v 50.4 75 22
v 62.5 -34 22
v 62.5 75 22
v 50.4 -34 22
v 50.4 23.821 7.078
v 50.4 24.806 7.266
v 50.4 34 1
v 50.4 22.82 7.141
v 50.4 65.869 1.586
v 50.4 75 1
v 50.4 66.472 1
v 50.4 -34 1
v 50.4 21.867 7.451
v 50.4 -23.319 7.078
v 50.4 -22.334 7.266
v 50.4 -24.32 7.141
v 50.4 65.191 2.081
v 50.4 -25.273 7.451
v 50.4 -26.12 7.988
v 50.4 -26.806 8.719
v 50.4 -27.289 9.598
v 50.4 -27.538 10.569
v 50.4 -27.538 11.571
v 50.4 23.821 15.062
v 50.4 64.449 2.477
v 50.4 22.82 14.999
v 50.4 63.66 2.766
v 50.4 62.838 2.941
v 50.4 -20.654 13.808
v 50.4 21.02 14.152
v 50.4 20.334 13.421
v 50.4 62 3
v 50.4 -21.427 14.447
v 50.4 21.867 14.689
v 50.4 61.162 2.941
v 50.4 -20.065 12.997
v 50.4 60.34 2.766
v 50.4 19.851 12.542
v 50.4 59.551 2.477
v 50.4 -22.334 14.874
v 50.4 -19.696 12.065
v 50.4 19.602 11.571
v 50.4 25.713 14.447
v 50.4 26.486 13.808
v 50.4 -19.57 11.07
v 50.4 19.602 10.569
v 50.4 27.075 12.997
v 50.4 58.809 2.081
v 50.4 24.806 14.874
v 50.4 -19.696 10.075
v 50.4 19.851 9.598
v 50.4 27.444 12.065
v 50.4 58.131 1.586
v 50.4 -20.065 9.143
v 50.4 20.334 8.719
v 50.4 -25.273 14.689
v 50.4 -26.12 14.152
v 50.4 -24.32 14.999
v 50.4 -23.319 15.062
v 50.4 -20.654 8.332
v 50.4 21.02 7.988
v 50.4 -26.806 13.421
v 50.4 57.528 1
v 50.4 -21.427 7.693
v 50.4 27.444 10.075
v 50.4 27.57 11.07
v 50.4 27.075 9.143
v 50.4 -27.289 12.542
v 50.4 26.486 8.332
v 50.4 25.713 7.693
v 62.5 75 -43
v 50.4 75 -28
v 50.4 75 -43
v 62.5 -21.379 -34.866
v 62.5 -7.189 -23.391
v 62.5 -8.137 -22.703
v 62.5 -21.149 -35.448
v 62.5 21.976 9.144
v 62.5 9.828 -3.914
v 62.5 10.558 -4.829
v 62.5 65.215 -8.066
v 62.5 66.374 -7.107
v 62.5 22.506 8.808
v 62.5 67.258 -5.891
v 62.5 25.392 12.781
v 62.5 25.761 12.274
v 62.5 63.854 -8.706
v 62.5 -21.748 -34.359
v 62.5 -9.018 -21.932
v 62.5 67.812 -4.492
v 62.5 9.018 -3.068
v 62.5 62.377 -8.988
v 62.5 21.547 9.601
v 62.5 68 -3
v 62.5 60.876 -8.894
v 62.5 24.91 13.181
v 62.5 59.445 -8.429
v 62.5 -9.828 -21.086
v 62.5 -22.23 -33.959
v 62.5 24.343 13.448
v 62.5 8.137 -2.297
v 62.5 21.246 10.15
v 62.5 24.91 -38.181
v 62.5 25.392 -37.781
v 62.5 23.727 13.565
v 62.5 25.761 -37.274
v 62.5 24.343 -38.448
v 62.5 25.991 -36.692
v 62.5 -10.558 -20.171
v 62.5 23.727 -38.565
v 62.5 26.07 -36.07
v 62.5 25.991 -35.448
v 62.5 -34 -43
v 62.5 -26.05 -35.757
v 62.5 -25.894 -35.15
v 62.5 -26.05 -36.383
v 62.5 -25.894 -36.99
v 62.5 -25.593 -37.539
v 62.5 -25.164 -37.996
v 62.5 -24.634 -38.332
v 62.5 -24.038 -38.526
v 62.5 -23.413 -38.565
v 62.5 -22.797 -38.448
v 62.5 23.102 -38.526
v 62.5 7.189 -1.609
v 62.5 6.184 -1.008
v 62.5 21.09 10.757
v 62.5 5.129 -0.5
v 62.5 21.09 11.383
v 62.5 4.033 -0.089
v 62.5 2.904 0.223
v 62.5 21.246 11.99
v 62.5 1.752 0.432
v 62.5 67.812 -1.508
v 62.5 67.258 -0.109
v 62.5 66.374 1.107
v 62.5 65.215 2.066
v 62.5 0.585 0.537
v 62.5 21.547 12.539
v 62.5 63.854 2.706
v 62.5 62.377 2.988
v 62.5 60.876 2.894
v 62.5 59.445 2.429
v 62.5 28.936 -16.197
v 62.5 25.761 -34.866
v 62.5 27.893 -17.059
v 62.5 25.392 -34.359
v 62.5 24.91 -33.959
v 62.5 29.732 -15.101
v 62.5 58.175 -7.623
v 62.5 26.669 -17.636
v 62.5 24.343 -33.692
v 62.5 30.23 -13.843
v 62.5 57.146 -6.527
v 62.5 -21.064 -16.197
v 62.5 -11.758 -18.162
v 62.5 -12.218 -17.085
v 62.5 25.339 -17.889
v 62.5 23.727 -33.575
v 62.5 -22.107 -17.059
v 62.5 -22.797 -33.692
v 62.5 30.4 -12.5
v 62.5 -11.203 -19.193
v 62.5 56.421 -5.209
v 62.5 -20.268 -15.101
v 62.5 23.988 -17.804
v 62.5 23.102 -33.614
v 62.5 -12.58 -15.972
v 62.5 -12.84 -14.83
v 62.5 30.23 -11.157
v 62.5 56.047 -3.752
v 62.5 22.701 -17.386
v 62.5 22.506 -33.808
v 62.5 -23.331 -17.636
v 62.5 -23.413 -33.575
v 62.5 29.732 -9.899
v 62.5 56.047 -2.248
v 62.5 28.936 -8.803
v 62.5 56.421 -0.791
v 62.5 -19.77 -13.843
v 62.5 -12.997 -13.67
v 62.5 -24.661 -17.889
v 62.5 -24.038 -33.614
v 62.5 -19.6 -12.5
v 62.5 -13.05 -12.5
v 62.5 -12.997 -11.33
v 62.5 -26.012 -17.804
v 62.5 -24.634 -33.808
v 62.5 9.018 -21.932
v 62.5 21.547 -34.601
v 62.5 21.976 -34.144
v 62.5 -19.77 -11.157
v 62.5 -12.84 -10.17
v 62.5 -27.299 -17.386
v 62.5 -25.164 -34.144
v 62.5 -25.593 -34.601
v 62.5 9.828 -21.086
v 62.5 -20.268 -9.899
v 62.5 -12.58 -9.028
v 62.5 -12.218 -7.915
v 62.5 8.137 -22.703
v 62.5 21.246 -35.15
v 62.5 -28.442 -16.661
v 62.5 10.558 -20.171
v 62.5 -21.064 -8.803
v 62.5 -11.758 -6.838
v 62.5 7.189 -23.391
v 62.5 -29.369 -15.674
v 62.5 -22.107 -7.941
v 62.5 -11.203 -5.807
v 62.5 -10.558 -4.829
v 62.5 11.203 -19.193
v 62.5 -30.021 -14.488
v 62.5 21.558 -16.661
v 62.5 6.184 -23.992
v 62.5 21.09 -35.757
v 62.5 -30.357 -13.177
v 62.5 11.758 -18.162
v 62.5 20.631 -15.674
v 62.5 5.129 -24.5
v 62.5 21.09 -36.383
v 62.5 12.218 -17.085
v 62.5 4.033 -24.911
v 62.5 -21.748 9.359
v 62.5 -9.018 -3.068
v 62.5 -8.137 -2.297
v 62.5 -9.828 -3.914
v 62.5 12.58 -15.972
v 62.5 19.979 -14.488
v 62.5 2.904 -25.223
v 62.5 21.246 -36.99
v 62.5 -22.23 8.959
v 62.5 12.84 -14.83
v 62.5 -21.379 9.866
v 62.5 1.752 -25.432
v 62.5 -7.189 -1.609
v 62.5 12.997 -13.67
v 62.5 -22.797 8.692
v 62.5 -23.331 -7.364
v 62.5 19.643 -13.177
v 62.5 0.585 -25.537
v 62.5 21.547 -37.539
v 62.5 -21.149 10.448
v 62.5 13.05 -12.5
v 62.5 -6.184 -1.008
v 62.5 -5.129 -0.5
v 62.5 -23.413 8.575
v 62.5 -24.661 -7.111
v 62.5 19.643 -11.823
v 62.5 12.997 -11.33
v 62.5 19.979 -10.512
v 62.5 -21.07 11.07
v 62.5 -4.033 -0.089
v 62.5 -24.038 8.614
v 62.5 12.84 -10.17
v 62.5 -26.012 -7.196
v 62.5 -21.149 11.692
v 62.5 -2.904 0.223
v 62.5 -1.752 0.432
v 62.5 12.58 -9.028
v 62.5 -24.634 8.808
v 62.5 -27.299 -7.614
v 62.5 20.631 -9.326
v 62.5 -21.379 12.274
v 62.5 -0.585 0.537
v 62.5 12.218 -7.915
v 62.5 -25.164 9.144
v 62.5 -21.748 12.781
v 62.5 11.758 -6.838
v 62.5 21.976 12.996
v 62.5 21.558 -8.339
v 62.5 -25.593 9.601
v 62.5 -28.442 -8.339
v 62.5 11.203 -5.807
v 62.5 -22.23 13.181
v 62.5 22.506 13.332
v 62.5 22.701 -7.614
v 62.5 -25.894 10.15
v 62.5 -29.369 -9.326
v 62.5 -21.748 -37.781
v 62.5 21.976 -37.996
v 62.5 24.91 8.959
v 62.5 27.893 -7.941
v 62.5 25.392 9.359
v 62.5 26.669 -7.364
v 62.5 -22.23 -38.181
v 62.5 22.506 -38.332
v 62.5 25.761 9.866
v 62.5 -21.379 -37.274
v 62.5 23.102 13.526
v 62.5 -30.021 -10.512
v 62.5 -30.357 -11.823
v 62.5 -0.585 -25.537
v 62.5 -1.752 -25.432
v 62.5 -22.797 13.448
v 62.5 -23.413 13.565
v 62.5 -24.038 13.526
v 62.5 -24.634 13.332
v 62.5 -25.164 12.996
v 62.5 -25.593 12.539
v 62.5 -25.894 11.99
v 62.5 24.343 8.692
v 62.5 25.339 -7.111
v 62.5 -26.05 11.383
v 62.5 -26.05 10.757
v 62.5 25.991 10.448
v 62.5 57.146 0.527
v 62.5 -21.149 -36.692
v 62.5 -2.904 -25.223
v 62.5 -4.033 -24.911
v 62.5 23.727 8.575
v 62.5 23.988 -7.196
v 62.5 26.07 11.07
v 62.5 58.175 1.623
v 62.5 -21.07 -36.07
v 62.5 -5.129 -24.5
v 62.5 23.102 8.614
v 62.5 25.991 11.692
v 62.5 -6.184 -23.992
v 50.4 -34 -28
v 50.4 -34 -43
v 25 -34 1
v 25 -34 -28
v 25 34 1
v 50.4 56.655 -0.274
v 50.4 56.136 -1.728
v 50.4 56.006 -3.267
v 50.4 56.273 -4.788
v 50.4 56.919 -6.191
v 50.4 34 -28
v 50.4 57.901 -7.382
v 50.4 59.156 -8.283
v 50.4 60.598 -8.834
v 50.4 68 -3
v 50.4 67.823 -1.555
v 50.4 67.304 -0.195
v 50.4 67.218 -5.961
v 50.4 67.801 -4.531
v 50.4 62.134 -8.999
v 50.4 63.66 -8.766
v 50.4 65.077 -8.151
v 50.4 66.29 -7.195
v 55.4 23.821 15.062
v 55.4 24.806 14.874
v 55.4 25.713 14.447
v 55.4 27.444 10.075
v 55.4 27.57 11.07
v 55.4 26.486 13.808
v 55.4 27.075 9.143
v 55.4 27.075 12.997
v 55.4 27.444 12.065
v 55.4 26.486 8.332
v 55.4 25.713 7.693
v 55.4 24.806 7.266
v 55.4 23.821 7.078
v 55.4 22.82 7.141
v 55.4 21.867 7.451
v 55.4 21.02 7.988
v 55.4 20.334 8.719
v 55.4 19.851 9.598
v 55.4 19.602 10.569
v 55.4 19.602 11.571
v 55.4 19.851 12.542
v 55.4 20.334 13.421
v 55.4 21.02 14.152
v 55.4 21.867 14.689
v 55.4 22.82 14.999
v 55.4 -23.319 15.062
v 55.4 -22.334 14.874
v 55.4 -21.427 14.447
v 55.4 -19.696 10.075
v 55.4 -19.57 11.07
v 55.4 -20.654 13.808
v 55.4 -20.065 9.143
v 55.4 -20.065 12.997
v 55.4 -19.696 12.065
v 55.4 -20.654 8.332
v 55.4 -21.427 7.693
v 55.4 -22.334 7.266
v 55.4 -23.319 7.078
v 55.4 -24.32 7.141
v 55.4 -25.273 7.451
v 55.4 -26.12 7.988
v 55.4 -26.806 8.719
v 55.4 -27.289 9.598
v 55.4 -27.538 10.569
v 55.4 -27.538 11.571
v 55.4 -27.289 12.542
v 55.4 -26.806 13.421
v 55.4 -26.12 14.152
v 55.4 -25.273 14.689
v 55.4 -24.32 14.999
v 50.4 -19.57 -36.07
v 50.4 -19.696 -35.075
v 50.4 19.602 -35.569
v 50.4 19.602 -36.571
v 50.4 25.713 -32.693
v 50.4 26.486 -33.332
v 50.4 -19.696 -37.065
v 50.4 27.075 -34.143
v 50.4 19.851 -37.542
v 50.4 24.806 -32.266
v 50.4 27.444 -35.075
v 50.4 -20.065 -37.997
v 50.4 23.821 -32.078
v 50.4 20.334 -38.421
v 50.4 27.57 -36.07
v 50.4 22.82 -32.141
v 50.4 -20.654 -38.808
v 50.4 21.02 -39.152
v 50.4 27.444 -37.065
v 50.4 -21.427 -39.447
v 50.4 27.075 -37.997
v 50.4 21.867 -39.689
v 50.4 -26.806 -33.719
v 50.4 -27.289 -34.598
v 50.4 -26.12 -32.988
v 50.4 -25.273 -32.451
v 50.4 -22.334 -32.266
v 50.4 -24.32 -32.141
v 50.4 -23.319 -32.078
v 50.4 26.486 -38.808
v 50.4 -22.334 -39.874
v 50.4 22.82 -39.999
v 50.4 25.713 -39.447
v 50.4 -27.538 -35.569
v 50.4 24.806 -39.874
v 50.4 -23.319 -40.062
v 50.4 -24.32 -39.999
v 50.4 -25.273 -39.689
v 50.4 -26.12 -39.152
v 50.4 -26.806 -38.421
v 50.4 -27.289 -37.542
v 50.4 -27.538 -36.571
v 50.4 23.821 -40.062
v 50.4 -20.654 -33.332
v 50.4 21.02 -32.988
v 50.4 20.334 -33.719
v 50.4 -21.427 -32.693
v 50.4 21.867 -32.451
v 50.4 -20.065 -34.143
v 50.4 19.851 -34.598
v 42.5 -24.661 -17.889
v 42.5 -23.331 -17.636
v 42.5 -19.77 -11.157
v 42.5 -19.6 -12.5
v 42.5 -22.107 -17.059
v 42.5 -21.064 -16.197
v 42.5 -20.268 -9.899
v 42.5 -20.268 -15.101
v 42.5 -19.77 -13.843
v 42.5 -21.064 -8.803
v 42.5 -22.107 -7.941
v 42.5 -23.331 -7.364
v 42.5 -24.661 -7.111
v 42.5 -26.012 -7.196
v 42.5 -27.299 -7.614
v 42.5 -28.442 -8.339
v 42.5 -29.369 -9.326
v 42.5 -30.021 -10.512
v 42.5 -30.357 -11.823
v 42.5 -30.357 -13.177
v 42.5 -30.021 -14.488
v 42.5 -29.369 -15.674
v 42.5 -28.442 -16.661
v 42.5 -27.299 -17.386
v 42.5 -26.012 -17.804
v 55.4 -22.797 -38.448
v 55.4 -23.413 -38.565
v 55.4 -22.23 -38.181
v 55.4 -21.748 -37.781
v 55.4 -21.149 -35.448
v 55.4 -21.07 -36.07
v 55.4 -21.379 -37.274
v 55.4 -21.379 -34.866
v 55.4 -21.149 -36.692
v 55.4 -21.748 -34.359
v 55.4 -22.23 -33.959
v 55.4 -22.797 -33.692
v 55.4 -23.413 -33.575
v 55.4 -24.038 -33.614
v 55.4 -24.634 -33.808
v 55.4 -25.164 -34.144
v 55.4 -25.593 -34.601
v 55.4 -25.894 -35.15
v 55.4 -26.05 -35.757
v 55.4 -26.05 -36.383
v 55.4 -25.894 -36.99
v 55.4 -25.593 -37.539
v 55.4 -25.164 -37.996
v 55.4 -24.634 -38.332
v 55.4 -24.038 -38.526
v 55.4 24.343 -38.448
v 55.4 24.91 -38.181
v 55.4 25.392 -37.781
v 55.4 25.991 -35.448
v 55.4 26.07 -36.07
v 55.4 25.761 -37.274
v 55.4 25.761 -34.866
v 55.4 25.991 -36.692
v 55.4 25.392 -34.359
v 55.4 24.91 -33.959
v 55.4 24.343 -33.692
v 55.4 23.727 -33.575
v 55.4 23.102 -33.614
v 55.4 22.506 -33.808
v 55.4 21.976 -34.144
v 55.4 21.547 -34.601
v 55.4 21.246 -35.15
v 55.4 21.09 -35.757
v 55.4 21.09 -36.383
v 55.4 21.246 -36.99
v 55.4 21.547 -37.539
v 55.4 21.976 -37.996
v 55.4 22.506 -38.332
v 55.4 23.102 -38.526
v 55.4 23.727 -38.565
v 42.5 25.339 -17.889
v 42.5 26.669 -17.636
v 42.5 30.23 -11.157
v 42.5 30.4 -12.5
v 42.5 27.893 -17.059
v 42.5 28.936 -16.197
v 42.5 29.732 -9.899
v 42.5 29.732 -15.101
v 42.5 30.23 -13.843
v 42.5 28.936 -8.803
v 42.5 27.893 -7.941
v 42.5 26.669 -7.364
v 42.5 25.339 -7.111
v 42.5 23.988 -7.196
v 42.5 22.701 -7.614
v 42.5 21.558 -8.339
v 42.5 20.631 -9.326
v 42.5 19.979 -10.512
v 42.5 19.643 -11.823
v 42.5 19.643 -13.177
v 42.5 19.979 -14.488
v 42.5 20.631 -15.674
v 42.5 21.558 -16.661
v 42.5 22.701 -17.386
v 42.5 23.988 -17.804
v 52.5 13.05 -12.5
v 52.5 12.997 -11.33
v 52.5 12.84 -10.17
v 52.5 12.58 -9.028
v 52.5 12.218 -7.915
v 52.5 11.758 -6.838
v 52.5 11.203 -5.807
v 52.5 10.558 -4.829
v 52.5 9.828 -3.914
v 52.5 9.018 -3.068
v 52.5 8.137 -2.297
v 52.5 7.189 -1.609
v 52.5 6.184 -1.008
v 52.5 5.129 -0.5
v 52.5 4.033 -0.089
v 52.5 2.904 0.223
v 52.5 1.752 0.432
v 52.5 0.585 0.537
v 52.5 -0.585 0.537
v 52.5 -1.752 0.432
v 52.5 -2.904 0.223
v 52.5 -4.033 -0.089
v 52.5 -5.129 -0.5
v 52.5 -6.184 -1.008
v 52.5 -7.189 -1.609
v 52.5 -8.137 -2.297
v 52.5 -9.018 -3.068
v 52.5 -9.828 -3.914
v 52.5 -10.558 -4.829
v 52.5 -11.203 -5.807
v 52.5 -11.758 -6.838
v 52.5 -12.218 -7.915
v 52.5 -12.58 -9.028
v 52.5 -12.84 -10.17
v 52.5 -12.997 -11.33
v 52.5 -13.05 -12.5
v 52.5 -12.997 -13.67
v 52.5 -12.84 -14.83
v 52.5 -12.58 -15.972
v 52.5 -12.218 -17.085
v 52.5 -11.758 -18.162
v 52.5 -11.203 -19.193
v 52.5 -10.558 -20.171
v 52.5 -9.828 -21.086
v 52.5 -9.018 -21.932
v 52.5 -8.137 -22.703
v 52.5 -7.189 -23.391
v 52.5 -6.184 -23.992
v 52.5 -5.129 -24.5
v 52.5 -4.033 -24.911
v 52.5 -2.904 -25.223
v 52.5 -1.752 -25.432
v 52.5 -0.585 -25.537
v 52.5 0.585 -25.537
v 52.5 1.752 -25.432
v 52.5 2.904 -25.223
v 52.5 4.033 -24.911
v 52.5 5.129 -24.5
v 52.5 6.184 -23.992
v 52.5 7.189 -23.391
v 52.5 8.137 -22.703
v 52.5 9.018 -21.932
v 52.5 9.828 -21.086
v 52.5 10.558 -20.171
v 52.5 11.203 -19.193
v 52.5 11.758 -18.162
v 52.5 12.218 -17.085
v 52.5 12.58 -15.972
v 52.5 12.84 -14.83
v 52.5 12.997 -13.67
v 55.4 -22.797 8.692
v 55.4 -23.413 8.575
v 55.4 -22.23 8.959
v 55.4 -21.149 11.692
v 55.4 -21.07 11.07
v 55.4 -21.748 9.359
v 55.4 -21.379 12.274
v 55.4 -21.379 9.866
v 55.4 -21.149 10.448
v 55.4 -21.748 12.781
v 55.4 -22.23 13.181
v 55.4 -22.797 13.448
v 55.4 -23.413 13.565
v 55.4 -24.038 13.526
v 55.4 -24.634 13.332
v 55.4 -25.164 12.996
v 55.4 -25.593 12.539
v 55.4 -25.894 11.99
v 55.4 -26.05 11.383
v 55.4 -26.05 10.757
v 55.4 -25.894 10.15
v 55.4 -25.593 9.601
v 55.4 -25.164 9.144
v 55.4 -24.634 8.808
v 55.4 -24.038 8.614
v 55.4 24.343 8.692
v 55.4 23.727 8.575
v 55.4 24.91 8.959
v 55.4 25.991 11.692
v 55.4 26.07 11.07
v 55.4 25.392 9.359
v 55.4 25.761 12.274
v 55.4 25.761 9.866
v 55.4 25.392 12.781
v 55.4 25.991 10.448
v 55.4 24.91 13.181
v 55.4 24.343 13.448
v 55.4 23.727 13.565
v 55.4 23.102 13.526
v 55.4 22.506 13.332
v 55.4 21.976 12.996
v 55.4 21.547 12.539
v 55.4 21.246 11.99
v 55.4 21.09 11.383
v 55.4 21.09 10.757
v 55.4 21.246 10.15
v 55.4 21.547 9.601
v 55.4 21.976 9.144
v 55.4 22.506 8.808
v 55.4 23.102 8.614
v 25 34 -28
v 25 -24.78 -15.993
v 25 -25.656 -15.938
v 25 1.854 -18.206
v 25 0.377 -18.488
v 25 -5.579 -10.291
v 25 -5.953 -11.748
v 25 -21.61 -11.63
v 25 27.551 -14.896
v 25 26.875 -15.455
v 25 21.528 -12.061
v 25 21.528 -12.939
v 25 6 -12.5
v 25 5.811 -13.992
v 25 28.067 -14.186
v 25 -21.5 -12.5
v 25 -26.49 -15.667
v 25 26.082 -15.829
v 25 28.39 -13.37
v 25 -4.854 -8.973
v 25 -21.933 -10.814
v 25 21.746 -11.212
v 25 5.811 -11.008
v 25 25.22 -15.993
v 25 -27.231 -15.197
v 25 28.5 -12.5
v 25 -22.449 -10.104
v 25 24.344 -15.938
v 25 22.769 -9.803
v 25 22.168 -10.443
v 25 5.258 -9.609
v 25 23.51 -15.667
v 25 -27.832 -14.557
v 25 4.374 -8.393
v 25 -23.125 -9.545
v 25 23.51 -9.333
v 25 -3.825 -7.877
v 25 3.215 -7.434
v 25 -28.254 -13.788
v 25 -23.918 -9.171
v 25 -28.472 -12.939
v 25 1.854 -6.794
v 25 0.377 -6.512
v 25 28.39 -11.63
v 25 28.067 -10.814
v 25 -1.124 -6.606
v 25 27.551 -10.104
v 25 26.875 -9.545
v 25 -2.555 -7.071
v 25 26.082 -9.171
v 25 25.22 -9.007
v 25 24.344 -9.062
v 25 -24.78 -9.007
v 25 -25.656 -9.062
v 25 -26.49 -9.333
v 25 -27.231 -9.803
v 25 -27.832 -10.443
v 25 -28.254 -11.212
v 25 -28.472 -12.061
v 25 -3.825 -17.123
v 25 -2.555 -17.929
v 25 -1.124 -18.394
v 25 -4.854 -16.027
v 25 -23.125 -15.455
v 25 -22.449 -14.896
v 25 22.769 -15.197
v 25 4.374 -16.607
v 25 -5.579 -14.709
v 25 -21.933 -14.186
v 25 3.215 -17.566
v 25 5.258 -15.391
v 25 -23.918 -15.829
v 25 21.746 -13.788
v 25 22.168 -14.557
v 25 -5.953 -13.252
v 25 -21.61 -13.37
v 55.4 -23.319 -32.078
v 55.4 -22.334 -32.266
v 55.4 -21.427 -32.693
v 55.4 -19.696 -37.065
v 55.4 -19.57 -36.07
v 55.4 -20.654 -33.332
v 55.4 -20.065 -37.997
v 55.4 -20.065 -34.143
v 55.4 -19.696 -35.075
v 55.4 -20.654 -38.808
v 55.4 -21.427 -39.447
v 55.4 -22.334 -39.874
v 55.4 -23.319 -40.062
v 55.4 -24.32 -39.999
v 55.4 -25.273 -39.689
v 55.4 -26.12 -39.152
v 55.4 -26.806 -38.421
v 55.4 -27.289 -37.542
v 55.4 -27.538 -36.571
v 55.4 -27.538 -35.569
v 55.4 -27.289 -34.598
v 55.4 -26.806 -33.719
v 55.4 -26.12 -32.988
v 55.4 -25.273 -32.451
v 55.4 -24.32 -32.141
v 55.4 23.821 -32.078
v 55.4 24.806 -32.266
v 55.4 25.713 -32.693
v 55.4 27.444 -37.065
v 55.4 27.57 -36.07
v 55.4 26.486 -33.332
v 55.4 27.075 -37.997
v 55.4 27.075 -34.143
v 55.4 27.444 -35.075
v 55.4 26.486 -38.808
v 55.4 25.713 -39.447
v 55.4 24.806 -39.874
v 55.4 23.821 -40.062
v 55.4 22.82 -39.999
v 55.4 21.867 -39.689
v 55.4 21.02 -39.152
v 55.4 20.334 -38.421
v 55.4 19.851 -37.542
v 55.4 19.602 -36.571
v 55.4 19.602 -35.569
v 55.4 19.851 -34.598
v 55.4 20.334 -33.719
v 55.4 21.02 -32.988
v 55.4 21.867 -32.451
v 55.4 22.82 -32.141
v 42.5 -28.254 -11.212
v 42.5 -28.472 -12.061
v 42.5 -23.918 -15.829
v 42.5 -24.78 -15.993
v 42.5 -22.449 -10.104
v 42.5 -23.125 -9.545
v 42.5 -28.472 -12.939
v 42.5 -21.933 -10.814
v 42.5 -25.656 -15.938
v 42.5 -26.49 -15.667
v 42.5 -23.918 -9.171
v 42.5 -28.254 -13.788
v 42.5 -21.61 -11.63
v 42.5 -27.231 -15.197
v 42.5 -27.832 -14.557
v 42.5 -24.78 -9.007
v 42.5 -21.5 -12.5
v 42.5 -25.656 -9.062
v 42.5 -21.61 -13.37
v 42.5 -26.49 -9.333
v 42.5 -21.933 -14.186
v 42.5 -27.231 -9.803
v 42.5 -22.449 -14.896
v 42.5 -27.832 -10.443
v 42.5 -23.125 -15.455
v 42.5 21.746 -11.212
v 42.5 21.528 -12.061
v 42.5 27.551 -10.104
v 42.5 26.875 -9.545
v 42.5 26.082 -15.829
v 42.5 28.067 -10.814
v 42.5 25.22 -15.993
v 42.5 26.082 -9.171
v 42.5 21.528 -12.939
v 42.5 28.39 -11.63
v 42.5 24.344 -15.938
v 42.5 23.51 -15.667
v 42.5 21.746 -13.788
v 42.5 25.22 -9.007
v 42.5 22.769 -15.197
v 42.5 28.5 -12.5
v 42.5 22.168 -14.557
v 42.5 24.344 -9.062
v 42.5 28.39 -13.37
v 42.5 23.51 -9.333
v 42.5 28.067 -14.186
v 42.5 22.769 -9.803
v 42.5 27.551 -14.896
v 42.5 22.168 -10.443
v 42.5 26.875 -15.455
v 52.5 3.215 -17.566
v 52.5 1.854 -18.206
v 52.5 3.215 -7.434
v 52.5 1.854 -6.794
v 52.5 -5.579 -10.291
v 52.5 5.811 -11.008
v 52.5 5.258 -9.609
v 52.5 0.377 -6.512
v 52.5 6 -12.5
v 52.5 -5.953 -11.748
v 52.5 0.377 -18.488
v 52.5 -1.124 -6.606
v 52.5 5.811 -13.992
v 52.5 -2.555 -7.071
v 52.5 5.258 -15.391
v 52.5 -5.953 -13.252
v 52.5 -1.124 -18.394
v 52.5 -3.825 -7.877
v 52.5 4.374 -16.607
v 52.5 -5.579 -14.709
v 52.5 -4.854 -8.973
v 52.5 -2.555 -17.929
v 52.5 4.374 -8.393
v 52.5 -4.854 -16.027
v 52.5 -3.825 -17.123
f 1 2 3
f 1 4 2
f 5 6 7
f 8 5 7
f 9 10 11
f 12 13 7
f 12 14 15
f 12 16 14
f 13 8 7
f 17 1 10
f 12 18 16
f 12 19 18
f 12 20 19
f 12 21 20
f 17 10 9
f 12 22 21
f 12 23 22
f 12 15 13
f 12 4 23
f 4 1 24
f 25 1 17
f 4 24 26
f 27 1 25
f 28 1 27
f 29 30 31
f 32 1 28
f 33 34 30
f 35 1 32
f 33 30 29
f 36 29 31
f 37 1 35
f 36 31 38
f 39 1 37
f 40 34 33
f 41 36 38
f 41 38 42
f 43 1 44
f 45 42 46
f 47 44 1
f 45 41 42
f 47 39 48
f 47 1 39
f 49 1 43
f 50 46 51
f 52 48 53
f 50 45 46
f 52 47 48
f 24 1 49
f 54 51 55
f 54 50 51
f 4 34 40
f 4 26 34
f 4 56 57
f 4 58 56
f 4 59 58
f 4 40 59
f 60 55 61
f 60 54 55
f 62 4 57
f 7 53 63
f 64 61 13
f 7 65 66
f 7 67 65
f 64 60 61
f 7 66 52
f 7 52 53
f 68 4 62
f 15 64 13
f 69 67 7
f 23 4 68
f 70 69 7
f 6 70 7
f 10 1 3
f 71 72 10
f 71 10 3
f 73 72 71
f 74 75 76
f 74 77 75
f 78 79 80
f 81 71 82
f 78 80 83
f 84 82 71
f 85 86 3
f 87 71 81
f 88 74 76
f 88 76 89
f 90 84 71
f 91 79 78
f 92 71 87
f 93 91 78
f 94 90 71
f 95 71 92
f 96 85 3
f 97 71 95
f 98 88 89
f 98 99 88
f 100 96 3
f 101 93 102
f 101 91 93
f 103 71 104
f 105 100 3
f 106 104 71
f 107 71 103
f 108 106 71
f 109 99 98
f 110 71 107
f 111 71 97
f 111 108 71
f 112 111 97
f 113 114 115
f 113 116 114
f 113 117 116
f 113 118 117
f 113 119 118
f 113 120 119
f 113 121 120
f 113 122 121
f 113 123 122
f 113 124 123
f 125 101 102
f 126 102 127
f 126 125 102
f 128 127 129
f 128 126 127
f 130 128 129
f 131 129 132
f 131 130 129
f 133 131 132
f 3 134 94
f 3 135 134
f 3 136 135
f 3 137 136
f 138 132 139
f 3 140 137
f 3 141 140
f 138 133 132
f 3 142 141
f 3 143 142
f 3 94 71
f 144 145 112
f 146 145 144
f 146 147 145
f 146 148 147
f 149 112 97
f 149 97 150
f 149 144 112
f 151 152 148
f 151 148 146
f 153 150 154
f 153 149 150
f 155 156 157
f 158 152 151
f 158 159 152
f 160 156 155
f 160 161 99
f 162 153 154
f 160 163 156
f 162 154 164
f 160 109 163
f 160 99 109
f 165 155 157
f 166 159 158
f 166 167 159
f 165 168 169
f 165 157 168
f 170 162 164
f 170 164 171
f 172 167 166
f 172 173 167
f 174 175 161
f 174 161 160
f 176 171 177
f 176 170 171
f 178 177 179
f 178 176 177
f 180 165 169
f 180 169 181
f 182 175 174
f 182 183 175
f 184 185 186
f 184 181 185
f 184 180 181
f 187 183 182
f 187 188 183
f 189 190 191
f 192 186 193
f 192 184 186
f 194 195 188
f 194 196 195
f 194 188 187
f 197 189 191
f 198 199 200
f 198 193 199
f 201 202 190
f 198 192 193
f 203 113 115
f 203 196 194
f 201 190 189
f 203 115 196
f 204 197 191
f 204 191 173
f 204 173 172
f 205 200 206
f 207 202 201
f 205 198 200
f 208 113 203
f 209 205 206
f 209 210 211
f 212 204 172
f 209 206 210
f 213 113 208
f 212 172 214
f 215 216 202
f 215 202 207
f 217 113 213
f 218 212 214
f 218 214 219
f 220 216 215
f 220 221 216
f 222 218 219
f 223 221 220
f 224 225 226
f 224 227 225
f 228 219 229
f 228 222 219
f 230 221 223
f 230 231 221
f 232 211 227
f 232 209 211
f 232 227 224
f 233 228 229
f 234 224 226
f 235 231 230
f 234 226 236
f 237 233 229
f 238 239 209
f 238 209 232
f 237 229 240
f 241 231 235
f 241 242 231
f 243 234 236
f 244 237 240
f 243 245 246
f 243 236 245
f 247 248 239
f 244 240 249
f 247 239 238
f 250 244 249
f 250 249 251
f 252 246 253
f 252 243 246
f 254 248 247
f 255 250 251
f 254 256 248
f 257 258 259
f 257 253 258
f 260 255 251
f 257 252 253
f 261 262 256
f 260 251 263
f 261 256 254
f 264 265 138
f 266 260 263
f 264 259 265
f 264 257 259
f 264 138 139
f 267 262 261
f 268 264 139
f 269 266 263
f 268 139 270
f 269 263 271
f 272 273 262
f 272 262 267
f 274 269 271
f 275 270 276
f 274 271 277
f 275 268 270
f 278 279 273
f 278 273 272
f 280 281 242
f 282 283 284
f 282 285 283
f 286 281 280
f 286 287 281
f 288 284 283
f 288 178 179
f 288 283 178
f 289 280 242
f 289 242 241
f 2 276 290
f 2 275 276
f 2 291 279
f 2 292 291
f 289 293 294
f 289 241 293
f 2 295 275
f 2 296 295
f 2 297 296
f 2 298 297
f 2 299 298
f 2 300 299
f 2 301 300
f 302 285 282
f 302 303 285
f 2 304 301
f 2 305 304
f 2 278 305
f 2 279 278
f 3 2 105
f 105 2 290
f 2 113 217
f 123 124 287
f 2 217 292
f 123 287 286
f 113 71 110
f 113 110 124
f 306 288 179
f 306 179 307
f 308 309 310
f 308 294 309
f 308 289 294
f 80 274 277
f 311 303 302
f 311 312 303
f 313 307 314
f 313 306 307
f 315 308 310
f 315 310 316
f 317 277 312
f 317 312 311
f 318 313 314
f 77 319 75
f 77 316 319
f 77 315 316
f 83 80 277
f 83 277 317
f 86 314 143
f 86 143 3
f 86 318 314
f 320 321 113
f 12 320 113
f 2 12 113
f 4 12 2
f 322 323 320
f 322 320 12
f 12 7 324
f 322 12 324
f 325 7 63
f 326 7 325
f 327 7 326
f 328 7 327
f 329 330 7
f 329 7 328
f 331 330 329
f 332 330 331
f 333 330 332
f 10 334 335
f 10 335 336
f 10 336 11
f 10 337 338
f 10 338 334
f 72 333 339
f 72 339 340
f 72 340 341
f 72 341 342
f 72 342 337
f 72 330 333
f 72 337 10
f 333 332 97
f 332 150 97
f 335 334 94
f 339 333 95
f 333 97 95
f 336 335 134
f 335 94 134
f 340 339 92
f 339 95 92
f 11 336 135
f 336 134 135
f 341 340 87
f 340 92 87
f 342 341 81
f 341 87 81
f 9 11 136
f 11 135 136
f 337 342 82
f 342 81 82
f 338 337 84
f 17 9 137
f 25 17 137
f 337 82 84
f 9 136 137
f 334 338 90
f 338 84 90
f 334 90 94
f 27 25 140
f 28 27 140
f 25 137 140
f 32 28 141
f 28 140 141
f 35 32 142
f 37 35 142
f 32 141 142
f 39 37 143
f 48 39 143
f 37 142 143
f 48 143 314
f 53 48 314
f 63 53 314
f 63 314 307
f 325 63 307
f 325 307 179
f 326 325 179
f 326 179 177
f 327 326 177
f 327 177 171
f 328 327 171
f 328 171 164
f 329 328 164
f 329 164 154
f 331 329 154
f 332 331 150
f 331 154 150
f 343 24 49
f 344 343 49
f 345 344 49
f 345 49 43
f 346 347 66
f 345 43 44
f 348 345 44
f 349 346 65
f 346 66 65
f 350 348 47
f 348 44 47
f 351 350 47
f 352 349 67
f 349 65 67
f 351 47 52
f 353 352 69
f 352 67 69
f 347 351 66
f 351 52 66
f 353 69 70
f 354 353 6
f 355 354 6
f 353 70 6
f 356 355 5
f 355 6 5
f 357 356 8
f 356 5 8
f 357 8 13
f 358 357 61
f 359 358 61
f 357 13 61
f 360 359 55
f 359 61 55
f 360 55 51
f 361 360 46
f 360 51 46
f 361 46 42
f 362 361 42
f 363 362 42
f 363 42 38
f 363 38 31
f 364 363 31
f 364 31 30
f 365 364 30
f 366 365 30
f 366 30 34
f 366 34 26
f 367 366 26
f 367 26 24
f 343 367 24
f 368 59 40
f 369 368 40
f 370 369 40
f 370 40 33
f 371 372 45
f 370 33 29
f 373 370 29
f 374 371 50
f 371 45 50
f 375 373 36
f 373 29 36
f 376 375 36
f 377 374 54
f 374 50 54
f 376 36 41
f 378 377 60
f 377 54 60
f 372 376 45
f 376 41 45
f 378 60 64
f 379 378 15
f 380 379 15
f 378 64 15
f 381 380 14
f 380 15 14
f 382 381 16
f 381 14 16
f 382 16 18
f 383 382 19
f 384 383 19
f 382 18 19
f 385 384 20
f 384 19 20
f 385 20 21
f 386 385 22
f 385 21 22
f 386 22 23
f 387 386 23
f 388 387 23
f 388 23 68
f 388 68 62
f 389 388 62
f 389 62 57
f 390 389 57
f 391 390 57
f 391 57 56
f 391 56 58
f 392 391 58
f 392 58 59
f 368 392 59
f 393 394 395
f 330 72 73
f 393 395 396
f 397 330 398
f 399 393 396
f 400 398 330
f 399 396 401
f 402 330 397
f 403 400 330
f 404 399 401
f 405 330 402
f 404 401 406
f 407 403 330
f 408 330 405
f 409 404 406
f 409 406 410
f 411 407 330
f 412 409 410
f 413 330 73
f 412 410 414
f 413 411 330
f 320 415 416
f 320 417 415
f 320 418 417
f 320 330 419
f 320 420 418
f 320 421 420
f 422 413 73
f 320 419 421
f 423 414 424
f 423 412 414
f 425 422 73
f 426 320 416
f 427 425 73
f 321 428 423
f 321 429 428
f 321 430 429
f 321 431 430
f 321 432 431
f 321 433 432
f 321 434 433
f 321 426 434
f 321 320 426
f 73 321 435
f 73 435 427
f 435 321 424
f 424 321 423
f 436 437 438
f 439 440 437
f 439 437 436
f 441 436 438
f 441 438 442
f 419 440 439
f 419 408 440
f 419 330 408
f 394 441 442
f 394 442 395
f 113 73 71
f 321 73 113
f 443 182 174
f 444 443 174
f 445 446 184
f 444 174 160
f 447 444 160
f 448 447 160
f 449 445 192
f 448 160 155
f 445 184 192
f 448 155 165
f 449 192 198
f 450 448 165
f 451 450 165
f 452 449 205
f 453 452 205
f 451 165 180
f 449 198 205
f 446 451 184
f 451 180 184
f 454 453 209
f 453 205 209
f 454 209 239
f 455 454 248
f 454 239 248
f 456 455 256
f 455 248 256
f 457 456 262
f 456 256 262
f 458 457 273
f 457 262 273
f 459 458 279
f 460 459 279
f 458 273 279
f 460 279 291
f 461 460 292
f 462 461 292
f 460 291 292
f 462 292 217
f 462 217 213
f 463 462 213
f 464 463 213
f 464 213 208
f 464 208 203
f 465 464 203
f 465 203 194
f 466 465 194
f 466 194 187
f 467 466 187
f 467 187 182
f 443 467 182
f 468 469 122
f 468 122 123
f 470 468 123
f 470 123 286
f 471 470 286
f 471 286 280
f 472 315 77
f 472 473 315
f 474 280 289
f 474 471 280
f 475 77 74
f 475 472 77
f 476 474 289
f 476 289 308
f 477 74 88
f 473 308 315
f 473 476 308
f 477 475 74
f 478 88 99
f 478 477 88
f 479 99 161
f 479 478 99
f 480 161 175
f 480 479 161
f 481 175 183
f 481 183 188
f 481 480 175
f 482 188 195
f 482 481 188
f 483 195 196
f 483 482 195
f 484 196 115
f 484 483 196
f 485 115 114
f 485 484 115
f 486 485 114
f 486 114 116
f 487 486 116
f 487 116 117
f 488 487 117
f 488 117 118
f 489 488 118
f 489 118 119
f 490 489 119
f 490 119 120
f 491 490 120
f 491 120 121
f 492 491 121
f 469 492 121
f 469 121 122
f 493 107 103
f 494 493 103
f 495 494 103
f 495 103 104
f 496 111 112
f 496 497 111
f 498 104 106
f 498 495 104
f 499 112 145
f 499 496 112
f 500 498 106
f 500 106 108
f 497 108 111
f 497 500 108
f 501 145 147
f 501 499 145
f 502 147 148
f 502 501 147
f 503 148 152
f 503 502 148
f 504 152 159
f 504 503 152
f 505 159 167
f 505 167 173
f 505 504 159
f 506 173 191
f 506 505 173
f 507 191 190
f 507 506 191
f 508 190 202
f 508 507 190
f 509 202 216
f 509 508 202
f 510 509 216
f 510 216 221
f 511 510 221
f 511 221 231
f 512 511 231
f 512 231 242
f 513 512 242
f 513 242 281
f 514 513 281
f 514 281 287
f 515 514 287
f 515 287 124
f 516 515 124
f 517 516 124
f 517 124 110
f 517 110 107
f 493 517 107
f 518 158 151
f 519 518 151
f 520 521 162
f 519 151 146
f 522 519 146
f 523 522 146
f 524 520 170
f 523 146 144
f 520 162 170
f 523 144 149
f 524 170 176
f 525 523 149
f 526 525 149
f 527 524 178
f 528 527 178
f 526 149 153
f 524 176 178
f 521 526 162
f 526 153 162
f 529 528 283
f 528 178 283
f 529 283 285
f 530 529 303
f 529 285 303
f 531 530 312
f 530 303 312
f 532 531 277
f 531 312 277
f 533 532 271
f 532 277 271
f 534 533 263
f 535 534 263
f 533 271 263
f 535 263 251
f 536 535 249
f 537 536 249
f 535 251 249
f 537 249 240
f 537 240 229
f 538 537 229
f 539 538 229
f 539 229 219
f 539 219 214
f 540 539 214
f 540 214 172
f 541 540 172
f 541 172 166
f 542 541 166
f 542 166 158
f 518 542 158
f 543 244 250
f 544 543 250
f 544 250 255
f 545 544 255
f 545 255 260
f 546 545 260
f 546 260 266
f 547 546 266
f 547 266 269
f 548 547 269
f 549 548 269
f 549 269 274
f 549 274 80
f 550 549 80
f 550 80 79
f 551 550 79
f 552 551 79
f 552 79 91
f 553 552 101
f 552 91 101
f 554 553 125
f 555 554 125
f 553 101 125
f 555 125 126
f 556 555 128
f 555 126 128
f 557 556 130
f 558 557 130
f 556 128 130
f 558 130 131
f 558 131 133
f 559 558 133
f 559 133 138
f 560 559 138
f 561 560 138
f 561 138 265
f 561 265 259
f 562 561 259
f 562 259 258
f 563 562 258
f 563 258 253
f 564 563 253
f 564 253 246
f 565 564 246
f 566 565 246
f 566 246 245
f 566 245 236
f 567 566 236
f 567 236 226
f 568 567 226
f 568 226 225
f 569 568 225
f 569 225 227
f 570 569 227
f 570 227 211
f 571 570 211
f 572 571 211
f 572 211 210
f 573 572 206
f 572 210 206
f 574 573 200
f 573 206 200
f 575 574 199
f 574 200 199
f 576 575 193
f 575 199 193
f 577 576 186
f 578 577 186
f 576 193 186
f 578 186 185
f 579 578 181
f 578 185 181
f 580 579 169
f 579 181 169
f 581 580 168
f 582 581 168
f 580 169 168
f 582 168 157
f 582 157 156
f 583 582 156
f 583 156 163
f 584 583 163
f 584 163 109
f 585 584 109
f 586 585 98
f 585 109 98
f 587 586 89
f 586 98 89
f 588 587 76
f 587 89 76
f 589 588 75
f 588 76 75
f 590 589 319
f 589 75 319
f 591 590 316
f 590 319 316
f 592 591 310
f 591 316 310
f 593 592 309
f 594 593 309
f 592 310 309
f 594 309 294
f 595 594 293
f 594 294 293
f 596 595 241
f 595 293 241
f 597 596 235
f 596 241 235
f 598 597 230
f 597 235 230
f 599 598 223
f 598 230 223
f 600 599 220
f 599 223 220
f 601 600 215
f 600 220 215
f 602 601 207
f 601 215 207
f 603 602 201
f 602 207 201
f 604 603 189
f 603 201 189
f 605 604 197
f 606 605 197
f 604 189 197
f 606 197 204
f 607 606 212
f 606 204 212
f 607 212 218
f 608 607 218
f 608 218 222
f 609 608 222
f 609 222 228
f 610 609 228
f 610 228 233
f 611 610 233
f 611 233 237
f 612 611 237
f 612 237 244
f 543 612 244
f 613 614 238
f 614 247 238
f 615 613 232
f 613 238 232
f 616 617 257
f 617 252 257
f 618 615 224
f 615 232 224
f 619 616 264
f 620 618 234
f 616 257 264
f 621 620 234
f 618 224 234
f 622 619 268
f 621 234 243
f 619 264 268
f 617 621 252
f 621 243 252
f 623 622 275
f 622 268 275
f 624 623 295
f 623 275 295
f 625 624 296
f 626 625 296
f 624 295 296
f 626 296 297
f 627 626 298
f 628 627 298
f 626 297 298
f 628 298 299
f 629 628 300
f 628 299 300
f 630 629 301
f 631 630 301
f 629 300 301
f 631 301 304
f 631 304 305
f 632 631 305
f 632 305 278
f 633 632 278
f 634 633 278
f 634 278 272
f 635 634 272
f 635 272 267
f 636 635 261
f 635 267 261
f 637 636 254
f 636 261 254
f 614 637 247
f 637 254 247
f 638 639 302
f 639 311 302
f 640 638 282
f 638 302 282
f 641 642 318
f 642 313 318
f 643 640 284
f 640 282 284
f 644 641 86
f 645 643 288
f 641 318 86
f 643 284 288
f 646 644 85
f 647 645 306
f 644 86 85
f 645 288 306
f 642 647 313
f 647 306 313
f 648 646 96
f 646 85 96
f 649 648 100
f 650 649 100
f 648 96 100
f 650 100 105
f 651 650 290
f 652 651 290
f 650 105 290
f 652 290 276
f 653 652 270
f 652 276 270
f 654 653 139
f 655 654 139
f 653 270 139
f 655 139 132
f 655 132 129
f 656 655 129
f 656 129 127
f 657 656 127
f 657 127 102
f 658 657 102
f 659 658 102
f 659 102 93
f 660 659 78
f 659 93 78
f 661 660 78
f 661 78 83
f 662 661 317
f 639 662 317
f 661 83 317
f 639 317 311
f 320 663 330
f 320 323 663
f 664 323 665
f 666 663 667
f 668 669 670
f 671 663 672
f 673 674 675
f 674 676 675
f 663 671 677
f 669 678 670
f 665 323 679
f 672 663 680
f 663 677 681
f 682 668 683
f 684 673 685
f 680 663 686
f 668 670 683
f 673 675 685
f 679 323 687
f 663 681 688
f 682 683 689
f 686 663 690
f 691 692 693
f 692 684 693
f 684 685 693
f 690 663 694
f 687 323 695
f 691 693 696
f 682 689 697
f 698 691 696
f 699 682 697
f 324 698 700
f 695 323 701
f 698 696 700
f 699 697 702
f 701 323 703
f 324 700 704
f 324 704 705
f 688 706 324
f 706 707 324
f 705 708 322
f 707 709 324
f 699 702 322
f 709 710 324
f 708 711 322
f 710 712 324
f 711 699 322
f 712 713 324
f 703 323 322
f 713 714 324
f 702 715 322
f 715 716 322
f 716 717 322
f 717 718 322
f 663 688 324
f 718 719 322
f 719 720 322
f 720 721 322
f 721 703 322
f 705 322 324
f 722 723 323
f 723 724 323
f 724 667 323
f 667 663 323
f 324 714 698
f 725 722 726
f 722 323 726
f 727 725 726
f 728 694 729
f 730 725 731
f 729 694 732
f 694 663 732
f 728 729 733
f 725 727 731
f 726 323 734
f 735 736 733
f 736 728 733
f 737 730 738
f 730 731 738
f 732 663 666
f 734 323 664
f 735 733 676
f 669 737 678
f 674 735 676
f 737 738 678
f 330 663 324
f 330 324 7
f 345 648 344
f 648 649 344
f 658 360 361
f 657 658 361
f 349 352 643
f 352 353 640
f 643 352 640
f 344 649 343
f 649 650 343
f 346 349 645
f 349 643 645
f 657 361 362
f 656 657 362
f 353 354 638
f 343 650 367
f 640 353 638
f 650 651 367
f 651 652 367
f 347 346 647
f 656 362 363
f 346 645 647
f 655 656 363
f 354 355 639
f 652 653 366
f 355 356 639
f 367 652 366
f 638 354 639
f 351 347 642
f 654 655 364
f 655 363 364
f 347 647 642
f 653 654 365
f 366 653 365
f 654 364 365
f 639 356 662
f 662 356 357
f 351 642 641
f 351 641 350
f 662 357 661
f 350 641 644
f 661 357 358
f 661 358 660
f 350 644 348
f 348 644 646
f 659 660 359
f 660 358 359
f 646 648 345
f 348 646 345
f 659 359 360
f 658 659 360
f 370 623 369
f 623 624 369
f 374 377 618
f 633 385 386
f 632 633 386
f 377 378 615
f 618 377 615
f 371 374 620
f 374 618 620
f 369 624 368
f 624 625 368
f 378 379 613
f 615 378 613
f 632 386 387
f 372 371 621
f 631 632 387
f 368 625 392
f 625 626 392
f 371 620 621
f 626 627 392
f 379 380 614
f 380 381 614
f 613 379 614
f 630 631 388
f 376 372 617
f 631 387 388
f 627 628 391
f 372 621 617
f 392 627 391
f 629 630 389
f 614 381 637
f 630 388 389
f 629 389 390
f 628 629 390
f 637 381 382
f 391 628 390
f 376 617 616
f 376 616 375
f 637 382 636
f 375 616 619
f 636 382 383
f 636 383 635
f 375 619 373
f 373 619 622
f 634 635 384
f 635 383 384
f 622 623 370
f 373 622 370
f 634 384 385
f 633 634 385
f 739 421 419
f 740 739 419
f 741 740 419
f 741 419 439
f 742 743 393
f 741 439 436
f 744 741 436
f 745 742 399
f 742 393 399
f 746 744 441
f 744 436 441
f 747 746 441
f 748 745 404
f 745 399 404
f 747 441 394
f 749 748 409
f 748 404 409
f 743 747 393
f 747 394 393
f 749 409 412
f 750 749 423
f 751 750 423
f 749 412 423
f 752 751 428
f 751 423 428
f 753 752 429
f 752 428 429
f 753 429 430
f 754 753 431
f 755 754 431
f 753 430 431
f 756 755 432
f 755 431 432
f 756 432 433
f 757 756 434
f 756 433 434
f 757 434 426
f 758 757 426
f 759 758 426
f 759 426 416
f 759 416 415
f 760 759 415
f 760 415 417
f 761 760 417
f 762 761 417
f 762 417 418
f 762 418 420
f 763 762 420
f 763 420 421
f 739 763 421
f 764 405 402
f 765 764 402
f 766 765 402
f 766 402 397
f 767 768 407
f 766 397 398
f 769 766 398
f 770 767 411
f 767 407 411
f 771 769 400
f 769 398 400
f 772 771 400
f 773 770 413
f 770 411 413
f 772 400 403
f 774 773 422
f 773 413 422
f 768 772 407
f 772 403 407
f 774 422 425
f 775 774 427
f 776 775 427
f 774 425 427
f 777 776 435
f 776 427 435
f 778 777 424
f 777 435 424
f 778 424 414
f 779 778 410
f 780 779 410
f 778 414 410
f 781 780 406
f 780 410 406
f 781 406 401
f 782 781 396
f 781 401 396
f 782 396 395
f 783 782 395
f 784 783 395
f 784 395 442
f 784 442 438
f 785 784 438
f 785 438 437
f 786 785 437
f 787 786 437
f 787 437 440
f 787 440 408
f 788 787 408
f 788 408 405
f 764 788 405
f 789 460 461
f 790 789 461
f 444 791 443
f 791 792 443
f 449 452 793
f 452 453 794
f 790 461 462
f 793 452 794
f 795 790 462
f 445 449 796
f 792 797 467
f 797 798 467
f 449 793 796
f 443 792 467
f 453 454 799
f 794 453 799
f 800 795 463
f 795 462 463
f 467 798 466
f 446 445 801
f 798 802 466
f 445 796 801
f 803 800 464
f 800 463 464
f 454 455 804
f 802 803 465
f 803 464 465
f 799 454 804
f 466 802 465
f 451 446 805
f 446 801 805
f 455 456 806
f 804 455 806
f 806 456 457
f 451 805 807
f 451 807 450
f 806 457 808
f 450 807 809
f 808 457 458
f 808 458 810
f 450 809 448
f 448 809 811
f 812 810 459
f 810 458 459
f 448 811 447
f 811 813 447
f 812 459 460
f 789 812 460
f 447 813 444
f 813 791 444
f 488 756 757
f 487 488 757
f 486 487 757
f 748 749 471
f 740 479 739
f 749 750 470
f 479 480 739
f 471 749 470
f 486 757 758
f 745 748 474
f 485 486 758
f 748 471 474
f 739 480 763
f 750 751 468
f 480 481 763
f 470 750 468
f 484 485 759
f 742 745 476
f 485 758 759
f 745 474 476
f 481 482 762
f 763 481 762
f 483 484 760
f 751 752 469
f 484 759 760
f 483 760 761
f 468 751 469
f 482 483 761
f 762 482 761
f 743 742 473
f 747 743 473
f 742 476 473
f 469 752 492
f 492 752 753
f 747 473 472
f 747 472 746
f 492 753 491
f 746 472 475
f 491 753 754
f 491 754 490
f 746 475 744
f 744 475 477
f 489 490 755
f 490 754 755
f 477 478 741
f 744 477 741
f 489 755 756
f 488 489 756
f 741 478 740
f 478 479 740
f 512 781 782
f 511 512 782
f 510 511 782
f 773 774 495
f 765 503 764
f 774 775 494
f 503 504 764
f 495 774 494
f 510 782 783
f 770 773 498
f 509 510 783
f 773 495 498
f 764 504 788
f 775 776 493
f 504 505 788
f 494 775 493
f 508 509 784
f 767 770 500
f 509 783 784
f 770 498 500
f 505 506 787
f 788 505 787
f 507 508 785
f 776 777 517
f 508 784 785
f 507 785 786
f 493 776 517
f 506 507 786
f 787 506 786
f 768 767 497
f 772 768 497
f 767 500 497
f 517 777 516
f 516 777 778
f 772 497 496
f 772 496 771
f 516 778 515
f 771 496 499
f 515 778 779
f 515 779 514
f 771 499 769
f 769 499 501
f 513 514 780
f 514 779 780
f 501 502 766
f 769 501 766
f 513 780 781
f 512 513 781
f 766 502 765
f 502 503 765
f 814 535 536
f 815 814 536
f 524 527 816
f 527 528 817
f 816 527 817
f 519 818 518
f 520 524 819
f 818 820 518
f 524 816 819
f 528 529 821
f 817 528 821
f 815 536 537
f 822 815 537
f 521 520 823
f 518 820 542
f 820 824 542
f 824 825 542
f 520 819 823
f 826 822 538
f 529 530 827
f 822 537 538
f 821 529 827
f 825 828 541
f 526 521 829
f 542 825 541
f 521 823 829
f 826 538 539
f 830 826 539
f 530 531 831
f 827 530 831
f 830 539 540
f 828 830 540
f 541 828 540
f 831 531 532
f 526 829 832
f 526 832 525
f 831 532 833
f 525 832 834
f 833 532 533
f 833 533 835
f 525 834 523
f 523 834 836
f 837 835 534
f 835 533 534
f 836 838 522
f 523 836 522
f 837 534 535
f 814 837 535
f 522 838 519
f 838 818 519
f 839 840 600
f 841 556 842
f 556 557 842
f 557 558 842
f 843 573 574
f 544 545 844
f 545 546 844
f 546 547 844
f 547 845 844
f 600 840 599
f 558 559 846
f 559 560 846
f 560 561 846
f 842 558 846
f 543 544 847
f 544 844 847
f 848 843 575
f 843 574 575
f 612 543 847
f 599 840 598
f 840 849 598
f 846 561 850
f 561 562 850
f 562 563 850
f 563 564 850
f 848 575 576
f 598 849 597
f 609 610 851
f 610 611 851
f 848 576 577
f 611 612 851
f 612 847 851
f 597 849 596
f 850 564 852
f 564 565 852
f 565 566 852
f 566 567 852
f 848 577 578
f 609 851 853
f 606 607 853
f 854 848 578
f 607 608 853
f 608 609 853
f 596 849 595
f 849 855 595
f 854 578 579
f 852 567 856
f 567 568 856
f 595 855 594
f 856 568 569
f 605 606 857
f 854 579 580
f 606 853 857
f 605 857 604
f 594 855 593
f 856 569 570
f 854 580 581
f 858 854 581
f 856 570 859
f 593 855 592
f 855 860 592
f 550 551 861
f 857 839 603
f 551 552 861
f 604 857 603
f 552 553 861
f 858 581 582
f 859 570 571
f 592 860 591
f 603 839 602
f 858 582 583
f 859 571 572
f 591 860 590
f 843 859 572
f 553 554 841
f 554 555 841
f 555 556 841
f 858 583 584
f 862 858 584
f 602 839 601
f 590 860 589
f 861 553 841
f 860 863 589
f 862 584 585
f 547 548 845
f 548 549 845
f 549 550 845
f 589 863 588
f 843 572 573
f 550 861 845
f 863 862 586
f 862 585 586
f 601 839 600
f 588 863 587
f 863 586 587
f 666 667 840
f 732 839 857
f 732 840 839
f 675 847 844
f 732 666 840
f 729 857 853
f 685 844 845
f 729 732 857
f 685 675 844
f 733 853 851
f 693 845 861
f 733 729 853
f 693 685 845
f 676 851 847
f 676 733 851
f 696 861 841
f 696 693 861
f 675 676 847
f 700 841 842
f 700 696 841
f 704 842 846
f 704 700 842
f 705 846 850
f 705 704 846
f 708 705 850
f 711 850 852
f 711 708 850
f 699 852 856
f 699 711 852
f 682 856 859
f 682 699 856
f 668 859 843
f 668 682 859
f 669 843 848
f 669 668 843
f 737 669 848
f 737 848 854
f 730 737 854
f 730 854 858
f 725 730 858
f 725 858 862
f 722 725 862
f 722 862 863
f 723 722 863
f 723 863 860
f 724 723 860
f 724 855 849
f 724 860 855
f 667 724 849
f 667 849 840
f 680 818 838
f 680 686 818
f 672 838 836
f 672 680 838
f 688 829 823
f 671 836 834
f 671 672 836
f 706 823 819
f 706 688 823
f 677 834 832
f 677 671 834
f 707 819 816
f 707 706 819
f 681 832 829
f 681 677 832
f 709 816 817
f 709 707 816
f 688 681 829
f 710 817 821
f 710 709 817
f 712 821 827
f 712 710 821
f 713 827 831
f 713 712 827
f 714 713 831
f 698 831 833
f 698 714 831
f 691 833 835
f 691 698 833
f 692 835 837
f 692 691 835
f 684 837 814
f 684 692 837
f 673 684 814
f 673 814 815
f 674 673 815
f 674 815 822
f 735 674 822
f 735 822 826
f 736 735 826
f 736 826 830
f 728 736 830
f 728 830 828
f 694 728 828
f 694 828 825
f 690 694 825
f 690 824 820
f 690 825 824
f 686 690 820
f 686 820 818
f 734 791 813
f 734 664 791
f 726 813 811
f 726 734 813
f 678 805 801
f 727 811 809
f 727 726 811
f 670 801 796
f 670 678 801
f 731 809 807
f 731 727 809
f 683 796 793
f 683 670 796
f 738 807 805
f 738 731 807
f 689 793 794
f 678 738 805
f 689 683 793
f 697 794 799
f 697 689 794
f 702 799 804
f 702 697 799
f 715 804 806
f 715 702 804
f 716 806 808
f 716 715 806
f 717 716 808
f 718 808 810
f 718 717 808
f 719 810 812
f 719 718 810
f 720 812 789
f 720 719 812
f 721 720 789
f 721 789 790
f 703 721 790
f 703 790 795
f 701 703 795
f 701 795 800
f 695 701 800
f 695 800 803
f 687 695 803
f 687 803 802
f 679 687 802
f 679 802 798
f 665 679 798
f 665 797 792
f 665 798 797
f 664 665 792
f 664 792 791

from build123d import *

# Parameters (mm, degrees)
SKETCH006_W     = 109
SKETCH006_H     = 65
SKETCH006_R     = 2.5
SKETCH006_R_2   = 6
SKETCH006_R_3   = 3.5
PAD_DEPTH       = 37.5
SKETCH010_W     = 21
SKETCH010_H     = 25.4
SKETCH010_W_2   = 15
POCKET_DEPTH    = 109
SKETCH011_W     = 41
SKETCH011_H     = 25.4
POCKET001_DEPTH = 29
SKETCH009_R     = 2.5
SKETCH009_R_2   = 6
POCKET002_DEPTH = 13
SKETCH008_R     = 4
POCKET003_DEPTH = 5
SKETCH001_R     = 5.4
POCKET004_DEPTH = 20
SKETCH007_R     = 13.05
POCKET005_DEPTH = 10


with BuildPart() as part:
    # Sketch006 → Pad (new body)
    with BuildSketch(Plane.YZ.offset(25)):
        with Locations((20.5, -10.5)):
            Rectangle(SKETCH006_W, SKETCH006_H)
        with Locations((-23.57, -36.07)):
            Circle(SKETCH006_R, mode=Mode.SUBTRACT)
        with Locations((23.57, -36.07)):
            Circle(SKETCH006_R, mode=Mode.SUBTRACT)
        with Locations((0, -12.5)):
            Circle(SKETCH006_R_2, mode=Mode.SUBTRACT)
        with Locations((25, -12.5)):
            Circle(SKETCH006_R_3, mode=Mode.SUBTRACT)
        with Locations((-25, -12.5)):
            Circle(SKETCH006_R_3, mode=Mode.SUBTRACT)
    extrude(amount=PAD_DEPTH)

    # Sketch010 → Pocket (cut)
    with BuildSketch(Plane(origin=(25, -34, 0), x_dir=(0, 0, -1), z_dir=(0, -1, 0))):
        with Locations((-11.5, 12.7)):
            Rectangle(SKETCH010_W, SKETCH010_H)
        with Locations((35.5, 12.7)):
            Rectangle(SKETCH010_W_2, SKETCH010_H)
    extrude(amount=-POCKET_DEPTH, mode=Mode.SUBTRACT)

    # Sketch011 → Pocket001 (cut)
    with BuildSketch(Plane(origin=(25, 0, -28), x_dir=(0, 1, 0), z_dir=(0, 0, -1))):
        with Locations((54.5, 12.7)):
            Rectangle(SKETCH011_W, SKETCH011_H)
    extrude(amount=-POCKET001_DEPTH, mode=Mode.SUBTRACT)

    # Sketch009 → Pocket002 (cut)
    with BuildSketch(Plane.YZ.offset(62.5)):
        with Locations((-23.57, 11.07)):
            Circle(SKETCH009_R)
        with Locations((23.57, 11.07)):
            Circle(SKETCH009_R)
        with Locations((62, -3)):
            Circle(SKETCH009_R_2)
    extrude(amount=-POCKET002_DEPTH, mode=Mode.SUBTRACT)

    # Sketch008 → Pocket003 (cut)
    with BuildSketch(Plane(origin=(50.4, 0, 0), x_dir=(0, 1, 0), z_dir=(-1, 0, 0))):
        with Locations((-23.57, -11.07)):
            Circle(SKETCH008_R)
        with Locations((23.57, -11.07)):
            Circle(SKETCH008_R)
        with Locations((-23.57, 36.07)):
            Circle(SKETCH008_R)
        with Locations((23.57, 36.07)):
            Circle(SKETCH008_R)
    extrude(amount=-POCKET003_DEPTH, mode=Mode.SUBTRACT)

    # Sketch001 → Pocket004 (cut)
    with BuildSketch(Plane.YZ.offset(62.5)):
        with Locations((-25, -12.5)):
            Circle(SKETCH001_R)
        with Locations((25, -12.5)):
            Circle(SKETCH001_R)
    extrude(amount=-POCKET004_DEPTH, mode=Mode.SUBTRACT)

    # Sketch007 → Pocket005 (cut)
    with BuildSketch(Plane.YZ.offset(62.5)):
        with Locations((0, -12.5)):
            Circle(SKETCH007_R)
    extrude(amount=-POCKET005_DEPTH, mode=Mode.SUBTRACT)


solid = part.part
